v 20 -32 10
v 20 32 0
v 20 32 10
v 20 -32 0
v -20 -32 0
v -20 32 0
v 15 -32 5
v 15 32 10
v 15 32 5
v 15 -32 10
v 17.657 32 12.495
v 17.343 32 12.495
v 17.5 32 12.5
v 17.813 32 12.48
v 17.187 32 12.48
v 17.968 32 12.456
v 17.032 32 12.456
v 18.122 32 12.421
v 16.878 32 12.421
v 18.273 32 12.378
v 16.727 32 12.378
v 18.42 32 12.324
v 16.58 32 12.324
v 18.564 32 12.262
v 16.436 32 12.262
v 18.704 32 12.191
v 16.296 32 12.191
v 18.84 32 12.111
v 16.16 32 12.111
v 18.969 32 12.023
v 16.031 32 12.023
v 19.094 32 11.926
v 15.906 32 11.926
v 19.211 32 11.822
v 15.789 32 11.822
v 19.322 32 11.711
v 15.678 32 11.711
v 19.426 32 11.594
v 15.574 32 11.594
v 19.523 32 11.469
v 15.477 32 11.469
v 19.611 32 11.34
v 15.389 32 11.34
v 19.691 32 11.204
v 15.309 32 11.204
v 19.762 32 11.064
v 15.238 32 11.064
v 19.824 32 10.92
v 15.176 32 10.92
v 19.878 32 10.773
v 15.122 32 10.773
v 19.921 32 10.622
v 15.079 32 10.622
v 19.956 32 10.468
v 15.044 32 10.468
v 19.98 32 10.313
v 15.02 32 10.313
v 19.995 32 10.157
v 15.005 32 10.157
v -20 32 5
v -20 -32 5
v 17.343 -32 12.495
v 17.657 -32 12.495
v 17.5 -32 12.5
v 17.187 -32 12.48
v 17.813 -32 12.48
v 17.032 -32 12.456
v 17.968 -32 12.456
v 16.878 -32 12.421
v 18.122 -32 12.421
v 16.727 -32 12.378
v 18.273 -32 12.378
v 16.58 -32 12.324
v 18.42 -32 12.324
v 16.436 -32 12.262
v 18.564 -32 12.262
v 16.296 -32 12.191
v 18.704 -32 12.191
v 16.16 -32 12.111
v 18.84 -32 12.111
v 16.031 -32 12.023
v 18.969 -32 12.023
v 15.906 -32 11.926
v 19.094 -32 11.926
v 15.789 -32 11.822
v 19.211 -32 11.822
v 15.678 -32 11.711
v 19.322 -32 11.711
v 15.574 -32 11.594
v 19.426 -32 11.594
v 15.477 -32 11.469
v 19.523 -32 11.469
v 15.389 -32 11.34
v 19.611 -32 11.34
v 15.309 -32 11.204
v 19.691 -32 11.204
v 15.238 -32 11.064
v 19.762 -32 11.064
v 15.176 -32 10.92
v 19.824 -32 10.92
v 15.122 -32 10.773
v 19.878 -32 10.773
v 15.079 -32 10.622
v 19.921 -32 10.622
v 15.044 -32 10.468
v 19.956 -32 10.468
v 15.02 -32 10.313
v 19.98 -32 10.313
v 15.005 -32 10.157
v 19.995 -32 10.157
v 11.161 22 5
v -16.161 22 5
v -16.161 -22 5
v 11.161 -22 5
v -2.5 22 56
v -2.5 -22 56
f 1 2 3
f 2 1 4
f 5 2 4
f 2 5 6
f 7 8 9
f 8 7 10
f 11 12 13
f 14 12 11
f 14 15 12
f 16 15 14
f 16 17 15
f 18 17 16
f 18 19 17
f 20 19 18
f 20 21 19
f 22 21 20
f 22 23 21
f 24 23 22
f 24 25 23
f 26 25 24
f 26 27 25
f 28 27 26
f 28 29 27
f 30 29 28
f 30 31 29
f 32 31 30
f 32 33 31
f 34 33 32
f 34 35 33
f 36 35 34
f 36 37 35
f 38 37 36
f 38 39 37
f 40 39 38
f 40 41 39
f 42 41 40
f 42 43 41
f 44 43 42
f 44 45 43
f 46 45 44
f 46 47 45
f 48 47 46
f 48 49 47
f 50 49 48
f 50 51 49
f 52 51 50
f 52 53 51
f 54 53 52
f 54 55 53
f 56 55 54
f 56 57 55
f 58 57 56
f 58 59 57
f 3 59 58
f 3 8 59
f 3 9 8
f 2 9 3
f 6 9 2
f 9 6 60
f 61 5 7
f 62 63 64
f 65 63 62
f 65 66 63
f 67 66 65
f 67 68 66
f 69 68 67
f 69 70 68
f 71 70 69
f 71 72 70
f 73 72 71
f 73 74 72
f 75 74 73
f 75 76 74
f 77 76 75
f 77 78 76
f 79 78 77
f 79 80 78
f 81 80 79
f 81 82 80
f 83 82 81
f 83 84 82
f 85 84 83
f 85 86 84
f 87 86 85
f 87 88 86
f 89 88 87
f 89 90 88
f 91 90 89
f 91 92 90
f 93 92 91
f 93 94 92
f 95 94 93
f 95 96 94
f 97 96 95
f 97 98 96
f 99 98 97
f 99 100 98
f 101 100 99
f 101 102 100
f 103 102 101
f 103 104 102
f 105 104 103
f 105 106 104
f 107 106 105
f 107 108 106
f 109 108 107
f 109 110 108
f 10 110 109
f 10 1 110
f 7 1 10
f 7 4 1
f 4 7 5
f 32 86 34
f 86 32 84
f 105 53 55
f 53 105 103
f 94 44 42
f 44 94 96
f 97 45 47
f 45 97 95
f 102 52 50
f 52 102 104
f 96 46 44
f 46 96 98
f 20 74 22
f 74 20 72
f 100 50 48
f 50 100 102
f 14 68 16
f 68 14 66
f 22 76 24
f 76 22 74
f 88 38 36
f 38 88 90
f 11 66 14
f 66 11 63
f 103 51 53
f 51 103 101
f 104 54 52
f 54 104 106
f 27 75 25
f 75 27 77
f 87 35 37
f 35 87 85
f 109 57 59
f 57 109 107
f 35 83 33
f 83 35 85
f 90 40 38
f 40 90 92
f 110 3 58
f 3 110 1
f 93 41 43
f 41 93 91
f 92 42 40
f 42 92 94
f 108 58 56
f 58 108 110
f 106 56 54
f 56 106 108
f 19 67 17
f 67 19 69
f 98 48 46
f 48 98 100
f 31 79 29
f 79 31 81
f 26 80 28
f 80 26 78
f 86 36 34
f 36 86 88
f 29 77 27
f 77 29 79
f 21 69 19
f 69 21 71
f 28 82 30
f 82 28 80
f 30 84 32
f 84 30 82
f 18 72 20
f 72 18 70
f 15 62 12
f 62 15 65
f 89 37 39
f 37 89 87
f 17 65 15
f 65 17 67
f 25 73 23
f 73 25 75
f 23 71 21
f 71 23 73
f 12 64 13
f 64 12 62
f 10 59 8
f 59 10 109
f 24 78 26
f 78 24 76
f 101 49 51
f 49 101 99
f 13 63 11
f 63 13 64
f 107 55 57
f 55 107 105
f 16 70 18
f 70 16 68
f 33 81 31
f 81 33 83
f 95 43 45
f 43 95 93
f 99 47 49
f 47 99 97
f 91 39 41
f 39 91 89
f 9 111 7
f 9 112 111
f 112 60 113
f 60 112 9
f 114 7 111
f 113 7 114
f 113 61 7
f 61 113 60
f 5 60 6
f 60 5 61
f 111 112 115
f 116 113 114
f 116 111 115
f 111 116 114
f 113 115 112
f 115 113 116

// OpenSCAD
/*

TP1 MOOC imprimer en 3D

*/

//finesse des courbes
$fn=100;

//base
translate([0,0,2.5]) cube([40,64,5], center=true);

//forme haute
module triangle(){
	polygon([
				[-15, 0],
				[0, 56],
				[15, 0]
			]);
}

translate([-2.5,0,0]) rotate([90, 0, 0]) linear_extrude(44, center=true) triangle();

//rebord
module rebord(){
	cube([5,64,10], center=true);
	translate([0,0,5]) rotate([90,0,0]) cylinder(d=5, h=64, center=true);
}

translate([20-2.5,0,5]) rebord();
